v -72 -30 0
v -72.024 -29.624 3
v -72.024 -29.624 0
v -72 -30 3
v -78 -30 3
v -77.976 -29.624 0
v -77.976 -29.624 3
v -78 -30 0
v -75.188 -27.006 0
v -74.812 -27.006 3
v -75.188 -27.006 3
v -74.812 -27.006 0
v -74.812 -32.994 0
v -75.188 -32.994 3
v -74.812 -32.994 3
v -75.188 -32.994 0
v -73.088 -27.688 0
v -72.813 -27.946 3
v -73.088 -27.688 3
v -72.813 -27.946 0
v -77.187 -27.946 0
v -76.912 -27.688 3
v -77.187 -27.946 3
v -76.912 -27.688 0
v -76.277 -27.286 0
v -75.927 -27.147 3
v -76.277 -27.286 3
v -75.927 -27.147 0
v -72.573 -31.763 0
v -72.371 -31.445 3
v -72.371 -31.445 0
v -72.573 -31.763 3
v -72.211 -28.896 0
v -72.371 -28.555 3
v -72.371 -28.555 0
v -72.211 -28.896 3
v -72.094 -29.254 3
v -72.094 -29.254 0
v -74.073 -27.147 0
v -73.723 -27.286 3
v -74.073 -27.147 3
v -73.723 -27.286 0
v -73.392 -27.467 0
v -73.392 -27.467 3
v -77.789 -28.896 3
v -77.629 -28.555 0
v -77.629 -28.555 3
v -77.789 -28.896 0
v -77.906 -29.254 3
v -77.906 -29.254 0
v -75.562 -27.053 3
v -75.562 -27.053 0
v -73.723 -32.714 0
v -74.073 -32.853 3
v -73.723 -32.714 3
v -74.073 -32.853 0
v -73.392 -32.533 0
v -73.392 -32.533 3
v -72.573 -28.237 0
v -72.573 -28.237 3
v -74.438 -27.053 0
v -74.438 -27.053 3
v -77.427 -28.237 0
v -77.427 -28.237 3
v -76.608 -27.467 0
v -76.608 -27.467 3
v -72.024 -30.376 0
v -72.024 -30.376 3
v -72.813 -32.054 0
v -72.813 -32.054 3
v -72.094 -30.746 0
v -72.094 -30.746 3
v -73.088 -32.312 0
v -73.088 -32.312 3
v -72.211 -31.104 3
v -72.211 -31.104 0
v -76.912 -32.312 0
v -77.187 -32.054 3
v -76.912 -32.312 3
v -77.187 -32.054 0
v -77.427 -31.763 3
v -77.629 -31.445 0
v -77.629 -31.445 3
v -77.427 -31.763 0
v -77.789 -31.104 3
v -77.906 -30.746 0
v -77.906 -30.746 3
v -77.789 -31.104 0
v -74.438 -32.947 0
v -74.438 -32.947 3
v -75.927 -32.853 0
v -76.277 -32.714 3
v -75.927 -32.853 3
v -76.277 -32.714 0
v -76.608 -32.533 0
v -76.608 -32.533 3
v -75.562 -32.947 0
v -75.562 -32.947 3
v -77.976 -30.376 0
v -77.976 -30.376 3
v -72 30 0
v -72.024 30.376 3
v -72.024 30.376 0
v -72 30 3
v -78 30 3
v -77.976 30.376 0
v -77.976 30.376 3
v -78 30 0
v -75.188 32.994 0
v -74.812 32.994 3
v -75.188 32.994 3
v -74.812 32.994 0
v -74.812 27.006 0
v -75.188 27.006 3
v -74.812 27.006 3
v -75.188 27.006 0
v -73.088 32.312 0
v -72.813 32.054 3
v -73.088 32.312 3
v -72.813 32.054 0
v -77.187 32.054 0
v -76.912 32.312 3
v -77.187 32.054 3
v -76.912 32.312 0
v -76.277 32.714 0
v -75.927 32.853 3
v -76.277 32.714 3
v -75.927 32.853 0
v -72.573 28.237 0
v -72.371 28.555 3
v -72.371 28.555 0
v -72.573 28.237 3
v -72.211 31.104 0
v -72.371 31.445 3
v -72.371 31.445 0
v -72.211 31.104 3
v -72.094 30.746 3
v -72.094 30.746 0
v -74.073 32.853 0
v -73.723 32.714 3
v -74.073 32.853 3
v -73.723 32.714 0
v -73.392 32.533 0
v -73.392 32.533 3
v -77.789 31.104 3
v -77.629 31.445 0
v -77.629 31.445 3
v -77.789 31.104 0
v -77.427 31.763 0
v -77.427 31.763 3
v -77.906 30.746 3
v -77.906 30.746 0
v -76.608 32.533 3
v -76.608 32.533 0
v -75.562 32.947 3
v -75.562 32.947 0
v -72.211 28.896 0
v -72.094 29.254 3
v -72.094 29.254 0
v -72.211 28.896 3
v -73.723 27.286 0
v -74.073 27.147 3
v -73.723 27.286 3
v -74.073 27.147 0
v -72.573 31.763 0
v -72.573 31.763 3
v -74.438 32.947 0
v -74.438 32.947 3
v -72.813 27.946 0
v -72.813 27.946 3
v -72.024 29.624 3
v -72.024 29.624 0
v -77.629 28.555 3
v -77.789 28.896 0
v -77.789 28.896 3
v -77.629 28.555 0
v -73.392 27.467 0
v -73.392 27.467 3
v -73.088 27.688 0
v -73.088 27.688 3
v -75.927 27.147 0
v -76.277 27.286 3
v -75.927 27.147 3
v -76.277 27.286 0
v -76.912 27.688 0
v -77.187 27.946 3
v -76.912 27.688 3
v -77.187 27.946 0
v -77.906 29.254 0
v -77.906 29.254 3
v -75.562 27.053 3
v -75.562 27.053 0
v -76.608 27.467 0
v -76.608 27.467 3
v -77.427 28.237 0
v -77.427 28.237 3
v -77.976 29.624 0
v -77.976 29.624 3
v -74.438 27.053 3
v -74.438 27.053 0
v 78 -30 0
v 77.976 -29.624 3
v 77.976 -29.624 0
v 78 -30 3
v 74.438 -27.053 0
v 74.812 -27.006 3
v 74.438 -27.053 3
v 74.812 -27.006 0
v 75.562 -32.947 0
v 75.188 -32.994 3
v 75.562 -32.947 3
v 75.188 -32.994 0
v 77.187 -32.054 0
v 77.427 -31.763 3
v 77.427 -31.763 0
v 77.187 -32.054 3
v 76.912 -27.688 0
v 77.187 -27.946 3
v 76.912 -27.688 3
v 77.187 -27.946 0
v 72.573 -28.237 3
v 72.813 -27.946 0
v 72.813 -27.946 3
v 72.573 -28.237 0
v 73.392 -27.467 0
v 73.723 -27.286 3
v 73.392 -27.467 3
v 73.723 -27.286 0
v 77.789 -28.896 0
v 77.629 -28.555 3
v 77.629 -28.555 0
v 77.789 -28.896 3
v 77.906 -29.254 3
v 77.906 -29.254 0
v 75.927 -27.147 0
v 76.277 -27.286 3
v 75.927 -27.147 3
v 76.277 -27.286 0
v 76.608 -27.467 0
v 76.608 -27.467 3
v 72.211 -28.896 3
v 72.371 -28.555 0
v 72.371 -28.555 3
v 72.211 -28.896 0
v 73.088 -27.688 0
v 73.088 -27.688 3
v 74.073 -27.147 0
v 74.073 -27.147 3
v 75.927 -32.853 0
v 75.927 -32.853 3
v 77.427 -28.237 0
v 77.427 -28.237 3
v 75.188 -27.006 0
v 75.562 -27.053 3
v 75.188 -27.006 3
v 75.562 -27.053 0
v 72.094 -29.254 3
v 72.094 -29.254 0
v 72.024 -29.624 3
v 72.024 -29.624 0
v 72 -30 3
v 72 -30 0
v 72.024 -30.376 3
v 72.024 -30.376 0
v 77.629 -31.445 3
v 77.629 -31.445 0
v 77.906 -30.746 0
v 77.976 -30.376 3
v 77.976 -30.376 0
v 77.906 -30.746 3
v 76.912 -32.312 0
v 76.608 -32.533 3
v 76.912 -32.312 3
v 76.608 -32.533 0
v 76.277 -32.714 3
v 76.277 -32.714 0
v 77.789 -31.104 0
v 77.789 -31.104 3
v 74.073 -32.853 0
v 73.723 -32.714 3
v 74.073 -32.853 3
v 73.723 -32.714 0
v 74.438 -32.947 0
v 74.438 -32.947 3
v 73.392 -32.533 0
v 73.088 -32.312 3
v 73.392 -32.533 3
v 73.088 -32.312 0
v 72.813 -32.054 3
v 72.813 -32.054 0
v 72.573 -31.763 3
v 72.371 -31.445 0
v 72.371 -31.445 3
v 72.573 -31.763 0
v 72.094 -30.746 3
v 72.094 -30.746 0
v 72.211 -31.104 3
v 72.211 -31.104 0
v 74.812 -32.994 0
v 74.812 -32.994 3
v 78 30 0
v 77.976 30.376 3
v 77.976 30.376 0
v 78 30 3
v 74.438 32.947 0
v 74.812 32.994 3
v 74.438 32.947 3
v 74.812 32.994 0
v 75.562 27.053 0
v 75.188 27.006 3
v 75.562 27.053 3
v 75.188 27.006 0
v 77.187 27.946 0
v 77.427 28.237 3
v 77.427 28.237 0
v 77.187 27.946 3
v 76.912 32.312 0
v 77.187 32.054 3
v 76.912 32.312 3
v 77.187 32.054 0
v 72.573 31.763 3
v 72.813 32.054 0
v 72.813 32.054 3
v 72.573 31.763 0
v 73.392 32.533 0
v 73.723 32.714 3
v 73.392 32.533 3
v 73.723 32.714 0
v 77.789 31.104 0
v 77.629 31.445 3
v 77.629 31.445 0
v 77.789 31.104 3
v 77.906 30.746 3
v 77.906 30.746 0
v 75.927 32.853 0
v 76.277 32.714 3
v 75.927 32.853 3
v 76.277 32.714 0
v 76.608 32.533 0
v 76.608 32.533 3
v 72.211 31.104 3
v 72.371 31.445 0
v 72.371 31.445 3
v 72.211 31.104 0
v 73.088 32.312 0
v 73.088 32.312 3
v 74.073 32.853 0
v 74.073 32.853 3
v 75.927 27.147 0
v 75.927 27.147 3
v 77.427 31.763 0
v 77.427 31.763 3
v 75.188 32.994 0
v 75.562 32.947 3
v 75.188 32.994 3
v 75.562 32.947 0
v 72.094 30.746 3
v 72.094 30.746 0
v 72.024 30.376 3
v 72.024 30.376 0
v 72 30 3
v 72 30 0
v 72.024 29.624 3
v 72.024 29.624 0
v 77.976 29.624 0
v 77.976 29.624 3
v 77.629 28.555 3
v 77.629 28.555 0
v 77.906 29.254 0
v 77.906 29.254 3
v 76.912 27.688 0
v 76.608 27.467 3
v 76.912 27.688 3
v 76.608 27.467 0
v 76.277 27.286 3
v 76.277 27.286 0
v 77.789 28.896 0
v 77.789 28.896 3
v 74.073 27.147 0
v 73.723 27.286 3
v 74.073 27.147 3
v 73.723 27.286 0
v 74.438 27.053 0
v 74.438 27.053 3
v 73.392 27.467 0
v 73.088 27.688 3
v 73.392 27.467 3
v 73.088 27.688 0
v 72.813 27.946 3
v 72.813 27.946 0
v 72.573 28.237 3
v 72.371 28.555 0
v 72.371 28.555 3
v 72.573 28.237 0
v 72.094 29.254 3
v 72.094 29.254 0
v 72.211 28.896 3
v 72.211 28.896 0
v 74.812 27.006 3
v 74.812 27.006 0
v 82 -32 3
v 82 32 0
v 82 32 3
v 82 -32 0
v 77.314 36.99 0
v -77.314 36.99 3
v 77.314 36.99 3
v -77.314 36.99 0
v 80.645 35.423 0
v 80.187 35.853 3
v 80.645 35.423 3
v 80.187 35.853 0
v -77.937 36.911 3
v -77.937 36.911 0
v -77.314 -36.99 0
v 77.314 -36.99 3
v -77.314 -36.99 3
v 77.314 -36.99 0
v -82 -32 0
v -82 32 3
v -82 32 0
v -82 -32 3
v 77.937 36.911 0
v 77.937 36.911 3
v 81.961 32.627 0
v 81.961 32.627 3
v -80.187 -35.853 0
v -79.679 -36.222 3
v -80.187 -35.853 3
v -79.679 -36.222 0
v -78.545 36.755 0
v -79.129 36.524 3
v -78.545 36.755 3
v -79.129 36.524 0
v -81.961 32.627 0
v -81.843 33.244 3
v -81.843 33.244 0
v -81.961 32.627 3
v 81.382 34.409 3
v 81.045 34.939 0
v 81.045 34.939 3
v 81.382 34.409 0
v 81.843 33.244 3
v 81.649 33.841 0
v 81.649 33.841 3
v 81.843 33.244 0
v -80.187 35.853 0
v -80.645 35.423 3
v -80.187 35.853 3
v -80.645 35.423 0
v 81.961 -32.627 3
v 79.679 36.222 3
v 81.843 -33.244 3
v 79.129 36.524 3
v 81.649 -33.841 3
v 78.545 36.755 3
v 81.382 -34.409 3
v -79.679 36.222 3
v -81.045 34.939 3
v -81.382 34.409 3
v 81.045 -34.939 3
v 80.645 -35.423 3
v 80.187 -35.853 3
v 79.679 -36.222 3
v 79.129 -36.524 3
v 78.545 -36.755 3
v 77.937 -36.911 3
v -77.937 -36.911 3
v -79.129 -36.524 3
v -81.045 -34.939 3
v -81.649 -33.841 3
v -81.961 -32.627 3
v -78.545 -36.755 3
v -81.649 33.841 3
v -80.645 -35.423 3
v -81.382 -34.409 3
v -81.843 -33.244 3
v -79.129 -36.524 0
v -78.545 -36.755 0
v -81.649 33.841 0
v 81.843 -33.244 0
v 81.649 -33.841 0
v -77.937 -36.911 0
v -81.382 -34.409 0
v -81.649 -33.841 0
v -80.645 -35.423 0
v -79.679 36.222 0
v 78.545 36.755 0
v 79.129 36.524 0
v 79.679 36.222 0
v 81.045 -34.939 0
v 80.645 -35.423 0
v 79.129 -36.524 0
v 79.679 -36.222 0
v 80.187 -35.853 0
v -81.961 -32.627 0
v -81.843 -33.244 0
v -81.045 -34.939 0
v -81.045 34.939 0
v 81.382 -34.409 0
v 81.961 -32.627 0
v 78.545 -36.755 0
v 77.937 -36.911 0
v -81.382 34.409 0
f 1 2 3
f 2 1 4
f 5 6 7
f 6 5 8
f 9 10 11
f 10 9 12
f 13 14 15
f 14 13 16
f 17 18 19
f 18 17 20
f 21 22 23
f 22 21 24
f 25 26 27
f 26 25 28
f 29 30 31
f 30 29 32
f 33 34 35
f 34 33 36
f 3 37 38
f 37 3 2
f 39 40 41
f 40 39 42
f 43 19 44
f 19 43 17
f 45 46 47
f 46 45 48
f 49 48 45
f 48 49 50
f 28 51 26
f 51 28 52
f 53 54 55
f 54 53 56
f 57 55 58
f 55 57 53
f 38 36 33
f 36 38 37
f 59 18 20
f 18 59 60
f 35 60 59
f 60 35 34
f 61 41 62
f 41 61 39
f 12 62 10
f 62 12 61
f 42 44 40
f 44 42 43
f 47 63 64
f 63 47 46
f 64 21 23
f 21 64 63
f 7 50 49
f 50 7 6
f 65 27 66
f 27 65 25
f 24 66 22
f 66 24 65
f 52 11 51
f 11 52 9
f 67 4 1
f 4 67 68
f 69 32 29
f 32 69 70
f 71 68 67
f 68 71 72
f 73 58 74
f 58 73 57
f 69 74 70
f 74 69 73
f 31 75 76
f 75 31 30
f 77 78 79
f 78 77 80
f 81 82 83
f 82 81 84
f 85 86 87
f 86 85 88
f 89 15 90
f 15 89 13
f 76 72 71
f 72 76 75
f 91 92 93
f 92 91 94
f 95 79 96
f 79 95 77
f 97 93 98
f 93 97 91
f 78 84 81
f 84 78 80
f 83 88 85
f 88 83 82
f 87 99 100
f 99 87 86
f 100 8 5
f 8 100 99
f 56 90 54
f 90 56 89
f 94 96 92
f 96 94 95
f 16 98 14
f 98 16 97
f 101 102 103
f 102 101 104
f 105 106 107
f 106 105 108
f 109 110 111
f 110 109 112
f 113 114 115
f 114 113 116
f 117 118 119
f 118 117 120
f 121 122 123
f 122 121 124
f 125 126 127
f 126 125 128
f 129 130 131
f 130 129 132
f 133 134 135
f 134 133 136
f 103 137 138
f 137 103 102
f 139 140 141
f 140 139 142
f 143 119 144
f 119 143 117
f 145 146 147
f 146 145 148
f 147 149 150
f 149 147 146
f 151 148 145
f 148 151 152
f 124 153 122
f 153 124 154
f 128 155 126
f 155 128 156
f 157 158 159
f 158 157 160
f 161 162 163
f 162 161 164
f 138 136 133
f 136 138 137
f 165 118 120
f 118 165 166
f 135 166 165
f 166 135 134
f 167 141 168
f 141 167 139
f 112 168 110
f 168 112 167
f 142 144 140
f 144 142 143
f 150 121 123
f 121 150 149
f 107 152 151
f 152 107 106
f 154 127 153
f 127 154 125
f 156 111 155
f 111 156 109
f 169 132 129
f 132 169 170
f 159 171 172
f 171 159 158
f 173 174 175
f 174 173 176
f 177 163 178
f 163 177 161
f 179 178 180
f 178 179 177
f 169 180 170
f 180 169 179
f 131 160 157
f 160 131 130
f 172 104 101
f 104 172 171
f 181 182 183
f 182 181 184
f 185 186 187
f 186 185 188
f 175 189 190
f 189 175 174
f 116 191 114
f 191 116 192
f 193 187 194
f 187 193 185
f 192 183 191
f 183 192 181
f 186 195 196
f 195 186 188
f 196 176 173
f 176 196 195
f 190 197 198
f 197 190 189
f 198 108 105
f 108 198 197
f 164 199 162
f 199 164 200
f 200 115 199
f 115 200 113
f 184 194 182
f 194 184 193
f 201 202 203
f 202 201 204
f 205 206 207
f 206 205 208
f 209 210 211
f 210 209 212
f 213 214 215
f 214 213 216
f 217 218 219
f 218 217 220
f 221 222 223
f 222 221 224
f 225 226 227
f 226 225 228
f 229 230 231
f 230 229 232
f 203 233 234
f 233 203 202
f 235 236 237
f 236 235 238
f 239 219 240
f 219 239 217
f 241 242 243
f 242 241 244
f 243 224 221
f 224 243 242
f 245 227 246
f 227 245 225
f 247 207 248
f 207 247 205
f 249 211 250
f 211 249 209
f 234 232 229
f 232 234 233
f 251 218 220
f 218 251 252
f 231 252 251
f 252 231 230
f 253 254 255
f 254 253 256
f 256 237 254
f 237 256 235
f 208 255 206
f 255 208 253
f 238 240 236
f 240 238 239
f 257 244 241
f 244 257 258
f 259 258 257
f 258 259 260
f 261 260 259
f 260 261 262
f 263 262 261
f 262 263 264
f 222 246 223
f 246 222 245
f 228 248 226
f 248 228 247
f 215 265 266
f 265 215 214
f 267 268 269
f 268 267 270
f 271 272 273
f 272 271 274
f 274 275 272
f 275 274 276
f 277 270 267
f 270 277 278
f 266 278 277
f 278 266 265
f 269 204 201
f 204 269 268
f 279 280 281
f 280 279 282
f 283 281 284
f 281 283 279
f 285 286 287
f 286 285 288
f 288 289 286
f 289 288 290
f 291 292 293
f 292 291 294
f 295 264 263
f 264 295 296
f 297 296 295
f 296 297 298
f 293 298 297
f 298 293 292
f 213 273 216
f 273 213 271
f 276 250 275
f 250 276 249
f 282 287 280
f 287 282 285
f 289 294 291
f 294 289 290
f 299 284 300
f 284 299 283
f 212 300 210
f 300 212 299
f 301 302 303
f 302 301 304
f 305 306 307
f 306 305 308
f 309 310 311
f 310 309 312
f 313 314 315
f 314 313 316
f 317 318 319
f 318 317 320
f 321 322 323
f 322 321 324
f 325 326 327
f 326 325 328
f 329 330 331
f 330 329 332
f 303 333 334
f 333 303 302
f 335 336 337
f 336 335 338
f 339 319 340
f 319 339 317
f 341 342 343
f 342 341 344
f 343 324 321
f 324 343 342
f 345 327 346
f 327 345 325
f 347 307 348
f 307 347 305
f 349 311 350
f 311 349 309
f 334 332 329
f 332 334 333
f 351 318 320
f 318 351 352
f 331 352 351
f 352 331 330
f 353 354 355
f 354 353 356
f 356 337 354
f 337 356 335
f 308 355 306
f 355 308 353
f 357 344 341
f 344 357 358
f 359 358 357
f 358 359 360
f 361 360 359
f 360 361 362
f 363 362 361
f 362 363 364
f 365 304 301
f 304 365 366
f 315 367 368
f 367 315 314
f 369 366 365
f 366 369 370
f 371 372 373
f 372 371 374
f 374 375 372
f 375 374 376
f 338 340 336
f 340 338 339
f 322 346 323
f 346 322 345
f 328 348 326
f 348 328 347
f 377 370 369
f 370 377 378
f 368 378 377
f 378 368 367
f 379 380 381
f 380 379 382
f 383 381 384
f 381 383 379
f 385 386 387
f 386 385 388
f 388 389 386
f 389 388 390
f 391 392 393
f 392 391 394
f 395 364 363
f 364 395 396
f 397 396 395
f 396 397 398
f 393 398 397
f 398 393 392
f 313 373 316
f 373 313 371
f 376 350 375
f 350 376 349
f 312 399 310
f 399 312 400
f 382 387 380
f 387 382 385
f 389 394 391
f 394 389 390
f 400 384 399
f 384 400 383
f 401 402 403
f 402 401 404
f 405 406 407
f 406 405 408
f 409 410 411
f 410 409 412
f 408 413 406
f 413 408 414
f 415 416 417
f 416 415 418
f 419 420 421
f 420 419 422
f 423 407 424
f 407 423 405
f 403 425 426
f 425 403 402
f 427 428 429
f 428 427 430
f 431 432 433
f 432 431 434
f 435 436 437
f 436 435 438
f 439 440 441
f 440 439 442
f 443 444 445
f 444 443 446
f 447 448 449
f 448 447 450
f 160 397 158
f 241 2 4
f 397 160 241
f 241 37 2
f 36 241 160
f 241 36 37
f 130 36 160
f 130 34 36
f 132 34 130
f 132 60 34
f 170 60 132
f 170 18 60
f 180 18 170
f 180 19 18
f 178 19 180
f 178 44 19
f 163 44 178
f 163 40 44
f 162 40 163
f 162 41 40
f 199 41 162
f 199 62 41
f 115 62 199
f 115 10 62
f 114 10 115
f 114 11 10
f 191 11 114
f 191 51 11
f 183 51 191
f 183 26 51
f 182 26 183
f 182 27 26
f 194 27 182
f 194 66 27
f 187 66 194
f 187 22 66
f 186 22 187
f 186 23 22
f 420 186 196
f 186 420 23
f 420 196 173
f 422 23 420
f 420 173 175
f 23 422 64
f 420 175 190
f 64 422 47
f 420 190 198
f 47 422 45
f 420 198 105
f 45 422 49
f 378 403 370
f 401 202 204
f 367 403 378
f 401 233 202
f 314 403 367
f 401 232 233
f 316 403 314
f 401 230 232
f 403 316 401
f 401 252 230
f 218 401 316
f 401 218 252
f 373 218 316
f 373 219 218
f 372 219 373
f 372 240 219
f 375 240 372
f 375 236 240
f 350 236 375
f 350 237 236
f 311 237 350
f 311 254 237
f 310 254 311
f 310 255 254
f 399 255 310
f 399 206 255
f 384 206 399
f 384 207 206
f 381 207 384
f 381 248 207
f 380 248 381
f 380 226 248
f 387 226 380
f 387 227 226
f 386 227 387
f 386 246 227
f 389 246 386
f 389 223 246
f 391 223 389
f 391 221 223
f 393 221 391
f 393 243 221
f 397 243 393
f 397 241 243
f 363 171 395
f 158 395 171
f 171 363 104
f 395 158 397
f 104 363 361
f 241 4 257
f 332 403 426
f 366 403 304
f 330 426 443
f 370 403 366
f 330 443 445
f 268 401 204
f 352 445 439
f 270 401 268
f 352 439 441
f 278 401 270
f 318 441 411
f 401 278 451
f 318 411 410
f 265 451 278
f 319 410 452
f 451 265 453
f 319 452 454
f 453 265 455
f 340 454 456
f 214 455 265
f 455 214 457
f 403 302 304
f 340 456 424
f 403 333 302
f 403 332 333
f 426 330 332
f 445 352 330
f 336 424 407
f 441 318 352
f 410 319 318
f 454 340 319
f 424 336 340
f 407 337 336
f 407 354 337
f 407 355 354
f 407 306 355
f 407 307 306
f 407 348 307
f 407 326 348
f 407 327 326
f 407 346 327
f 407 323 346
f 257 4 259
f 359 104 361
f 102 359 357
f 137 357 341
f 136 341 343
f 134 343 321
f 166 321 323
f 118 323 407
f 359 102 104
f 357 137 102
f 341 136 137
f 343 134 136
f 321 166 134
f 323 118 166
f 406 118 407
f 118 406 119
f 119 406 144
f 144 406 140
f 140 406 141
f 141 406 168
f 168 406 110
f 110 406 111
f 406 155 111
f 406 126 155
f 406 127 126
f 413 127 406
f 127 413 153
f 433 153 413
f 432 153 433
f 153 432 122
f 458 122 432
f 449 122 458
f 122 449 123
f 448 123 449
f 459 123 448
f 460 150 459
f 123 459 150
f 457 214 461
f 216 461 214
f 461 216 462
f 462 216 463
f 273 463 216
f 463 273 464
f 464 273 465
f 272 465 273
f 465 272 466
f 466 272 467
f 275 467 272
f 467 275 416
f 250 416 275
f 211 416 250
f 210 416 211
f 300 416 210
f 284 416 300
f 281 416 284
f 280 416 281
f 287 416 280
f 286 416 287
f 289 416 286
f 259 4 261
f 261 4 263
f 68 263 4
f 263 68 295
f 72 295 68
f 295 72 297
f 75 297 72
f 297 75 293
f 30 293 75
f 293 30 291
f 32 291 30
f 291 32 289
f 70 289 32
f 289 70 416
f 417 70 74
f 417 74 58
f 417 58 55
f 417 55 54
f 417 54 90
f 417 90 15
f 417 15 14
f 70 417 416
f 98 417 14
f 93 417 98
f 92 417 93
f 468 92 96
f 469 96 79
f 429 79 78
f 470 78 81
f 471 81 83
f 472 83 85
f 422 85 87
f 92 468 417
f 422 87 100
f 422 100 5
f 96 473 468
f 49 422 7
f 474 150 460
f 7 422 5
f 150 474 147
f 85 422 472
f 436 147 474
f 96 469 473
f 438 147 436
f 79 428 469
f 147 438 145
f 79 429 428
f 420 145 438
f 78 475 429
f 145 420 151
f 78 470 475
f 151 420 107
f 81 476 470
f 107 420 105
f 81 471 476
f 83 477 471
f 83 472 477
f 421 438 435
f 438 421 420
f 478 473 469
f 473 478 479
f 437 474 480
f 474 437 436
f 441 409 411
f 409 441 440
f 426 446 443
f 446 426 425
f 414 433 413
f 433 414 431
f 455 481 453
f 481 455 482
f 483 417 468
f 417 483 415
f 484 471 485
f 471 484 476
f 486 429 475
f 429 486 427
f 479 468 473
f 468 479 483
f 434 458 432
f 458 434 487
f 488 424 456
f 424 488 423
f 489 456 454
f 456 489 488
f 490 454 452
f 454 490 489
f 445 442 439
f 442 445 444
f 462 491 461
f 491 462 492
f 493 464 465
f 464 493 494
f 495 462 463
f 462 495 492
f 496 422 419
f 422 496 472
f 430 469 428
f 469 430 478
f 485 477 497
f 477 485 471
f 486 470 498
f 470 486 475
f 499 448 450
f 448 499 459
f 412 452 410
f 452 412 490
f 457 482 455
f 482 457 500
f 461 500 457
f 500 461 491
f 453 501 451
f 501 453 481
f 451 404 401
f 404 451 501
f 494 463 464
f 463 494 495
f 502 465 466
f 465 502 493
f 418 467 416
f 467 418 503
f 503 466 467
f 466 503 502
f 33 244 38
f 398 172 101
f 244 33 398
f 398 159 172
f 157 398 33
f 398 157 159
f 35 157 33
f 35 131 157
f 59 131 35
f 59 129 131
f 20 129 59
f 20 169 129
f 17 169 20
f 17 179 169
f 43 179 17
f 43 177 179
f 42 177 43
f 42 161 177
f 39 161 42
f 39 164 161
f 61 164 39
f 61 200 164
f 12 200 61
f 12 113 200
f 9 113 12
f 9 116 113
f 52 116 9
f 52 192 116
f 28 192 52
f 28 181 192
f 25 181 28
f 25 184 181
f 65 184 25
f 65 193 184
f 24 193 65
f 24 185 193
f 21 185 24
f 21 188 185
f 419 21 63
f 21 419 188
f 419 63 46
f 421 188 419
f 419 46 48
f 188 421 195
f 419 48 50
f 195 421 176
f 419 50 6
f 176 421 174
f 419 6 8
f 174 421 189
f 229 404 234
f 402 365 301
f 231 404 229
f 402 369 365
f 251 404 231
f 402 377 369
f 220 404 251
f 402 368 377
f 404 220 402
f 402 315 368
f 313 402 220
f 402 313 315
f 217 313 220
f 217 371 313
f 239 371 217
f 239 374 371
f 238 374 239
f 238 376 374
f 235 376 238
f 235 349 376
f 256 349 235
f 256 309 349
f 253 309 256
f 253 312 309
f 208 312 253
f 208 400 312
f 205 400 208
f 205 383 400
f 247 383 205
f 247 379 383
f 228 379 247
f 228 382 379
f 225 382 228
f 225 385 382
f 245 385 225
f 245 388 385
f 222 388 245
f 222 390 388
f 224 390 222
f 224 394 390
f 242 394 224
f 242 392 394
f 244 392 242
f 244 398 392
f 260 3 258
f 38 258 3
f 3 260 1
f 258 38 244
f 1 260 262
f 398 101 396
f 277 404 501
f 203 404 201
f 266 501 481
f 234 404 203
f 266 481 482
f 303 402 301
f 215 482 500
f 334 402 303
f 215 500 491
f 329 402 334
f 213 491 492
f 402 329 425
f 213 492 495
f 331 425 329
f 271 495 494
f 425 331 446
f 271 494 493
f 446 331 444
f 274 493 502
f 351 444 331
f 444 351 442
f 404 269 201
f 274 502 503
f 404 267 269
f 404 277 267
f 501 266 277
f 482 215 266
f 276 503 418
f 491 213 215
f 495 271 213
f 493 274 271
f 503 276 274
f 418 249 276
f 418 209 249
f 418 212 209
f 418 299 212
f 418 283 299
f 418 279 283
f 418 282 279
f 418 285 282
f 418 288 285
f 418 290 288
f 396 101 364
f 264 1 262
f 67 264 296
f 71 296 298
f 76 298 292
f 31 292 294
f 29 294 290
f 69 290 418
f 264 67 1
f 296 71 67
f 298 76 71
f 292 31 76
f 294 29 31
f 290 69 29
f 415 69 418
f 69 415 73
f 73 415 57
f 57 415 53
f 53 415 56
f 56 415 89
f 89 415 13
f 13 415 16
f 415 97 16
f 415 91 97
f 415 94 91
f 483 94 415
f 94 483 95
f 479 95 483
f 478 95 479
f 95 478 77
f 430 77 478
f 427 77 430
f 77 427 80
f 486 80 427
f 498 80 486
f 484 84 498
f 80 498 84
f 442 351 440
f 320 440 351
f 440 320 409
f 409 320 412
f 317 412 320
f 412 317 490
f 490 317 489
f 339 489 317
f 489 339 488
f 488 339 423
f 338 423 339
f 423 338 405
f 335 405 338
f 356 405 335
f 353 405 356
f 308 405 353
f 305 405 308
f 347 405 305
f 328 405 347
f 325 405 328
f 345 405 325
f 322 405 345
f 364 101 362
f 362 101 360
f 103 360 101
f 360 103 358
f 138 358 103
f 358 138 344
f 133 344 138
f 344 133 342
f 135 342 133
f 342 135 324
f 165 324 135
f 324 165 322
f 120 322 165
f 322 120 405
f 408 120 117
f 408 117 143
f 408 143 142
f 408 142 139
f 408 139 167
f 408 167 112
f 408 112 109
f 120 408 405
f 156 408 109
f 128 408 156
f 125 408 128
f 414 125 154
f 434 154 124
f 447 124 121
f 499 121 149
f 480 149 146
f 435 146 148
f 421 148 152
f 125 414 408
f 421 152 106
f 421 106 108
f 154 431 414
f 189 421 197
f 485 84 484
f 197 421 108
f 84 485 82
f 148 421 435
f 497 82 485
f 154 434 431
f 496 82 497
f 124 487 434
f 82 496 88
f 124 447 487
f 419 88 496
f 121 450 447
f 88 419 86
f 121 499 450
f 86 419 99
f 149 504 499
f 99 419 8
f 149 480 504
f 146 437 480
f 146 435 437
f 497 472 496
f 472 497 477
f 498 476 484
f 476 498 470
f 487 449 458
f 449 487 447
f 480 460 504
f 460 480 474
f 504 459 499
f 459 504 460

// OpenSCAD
$fn = 50;


difference() {
	union() {
		hull() {
			translate(v = [-77.0000000000, 32.0000000000, 0]) {
				cylinder(h = 3, r = 5);
			}
			translate(v = [77.0000000000, 32.0000000000, 0]) {
				cylinder(h = 3, r = 5);
			}
			translate(v = [-77.0000000000, -32.0000000000, 0]) {
				cylinder(h = 3, r = 5);
			}
			translate(v = [77.0000000000, -32.0000000000, 0]) {
				cylinder(h = 3, r = 5);
			}
		}
	}
	union() {
		translate(v = [-75.0000000000, -30.0000000000, -100.0000000000]) {
			cylinder(h = 200, r = 3.0000000000);
		}
		translate(v = [-75.0000000000, 30.0000000000, -100.0000000000]) {
			cylinder(h = 200, r = 3.0000000000);
		}
		translate(v = [75.0000000000, -30.0000000000, -100.0000000000]) {
			cylinder(h = 200, r = 3.0000000000);
		}
		translate(v = [75.0000000000, 30.0000000000, -100.0000000000]) {
			cylinder(h = 200, r = 3.0000000000);
		}
	}
}
